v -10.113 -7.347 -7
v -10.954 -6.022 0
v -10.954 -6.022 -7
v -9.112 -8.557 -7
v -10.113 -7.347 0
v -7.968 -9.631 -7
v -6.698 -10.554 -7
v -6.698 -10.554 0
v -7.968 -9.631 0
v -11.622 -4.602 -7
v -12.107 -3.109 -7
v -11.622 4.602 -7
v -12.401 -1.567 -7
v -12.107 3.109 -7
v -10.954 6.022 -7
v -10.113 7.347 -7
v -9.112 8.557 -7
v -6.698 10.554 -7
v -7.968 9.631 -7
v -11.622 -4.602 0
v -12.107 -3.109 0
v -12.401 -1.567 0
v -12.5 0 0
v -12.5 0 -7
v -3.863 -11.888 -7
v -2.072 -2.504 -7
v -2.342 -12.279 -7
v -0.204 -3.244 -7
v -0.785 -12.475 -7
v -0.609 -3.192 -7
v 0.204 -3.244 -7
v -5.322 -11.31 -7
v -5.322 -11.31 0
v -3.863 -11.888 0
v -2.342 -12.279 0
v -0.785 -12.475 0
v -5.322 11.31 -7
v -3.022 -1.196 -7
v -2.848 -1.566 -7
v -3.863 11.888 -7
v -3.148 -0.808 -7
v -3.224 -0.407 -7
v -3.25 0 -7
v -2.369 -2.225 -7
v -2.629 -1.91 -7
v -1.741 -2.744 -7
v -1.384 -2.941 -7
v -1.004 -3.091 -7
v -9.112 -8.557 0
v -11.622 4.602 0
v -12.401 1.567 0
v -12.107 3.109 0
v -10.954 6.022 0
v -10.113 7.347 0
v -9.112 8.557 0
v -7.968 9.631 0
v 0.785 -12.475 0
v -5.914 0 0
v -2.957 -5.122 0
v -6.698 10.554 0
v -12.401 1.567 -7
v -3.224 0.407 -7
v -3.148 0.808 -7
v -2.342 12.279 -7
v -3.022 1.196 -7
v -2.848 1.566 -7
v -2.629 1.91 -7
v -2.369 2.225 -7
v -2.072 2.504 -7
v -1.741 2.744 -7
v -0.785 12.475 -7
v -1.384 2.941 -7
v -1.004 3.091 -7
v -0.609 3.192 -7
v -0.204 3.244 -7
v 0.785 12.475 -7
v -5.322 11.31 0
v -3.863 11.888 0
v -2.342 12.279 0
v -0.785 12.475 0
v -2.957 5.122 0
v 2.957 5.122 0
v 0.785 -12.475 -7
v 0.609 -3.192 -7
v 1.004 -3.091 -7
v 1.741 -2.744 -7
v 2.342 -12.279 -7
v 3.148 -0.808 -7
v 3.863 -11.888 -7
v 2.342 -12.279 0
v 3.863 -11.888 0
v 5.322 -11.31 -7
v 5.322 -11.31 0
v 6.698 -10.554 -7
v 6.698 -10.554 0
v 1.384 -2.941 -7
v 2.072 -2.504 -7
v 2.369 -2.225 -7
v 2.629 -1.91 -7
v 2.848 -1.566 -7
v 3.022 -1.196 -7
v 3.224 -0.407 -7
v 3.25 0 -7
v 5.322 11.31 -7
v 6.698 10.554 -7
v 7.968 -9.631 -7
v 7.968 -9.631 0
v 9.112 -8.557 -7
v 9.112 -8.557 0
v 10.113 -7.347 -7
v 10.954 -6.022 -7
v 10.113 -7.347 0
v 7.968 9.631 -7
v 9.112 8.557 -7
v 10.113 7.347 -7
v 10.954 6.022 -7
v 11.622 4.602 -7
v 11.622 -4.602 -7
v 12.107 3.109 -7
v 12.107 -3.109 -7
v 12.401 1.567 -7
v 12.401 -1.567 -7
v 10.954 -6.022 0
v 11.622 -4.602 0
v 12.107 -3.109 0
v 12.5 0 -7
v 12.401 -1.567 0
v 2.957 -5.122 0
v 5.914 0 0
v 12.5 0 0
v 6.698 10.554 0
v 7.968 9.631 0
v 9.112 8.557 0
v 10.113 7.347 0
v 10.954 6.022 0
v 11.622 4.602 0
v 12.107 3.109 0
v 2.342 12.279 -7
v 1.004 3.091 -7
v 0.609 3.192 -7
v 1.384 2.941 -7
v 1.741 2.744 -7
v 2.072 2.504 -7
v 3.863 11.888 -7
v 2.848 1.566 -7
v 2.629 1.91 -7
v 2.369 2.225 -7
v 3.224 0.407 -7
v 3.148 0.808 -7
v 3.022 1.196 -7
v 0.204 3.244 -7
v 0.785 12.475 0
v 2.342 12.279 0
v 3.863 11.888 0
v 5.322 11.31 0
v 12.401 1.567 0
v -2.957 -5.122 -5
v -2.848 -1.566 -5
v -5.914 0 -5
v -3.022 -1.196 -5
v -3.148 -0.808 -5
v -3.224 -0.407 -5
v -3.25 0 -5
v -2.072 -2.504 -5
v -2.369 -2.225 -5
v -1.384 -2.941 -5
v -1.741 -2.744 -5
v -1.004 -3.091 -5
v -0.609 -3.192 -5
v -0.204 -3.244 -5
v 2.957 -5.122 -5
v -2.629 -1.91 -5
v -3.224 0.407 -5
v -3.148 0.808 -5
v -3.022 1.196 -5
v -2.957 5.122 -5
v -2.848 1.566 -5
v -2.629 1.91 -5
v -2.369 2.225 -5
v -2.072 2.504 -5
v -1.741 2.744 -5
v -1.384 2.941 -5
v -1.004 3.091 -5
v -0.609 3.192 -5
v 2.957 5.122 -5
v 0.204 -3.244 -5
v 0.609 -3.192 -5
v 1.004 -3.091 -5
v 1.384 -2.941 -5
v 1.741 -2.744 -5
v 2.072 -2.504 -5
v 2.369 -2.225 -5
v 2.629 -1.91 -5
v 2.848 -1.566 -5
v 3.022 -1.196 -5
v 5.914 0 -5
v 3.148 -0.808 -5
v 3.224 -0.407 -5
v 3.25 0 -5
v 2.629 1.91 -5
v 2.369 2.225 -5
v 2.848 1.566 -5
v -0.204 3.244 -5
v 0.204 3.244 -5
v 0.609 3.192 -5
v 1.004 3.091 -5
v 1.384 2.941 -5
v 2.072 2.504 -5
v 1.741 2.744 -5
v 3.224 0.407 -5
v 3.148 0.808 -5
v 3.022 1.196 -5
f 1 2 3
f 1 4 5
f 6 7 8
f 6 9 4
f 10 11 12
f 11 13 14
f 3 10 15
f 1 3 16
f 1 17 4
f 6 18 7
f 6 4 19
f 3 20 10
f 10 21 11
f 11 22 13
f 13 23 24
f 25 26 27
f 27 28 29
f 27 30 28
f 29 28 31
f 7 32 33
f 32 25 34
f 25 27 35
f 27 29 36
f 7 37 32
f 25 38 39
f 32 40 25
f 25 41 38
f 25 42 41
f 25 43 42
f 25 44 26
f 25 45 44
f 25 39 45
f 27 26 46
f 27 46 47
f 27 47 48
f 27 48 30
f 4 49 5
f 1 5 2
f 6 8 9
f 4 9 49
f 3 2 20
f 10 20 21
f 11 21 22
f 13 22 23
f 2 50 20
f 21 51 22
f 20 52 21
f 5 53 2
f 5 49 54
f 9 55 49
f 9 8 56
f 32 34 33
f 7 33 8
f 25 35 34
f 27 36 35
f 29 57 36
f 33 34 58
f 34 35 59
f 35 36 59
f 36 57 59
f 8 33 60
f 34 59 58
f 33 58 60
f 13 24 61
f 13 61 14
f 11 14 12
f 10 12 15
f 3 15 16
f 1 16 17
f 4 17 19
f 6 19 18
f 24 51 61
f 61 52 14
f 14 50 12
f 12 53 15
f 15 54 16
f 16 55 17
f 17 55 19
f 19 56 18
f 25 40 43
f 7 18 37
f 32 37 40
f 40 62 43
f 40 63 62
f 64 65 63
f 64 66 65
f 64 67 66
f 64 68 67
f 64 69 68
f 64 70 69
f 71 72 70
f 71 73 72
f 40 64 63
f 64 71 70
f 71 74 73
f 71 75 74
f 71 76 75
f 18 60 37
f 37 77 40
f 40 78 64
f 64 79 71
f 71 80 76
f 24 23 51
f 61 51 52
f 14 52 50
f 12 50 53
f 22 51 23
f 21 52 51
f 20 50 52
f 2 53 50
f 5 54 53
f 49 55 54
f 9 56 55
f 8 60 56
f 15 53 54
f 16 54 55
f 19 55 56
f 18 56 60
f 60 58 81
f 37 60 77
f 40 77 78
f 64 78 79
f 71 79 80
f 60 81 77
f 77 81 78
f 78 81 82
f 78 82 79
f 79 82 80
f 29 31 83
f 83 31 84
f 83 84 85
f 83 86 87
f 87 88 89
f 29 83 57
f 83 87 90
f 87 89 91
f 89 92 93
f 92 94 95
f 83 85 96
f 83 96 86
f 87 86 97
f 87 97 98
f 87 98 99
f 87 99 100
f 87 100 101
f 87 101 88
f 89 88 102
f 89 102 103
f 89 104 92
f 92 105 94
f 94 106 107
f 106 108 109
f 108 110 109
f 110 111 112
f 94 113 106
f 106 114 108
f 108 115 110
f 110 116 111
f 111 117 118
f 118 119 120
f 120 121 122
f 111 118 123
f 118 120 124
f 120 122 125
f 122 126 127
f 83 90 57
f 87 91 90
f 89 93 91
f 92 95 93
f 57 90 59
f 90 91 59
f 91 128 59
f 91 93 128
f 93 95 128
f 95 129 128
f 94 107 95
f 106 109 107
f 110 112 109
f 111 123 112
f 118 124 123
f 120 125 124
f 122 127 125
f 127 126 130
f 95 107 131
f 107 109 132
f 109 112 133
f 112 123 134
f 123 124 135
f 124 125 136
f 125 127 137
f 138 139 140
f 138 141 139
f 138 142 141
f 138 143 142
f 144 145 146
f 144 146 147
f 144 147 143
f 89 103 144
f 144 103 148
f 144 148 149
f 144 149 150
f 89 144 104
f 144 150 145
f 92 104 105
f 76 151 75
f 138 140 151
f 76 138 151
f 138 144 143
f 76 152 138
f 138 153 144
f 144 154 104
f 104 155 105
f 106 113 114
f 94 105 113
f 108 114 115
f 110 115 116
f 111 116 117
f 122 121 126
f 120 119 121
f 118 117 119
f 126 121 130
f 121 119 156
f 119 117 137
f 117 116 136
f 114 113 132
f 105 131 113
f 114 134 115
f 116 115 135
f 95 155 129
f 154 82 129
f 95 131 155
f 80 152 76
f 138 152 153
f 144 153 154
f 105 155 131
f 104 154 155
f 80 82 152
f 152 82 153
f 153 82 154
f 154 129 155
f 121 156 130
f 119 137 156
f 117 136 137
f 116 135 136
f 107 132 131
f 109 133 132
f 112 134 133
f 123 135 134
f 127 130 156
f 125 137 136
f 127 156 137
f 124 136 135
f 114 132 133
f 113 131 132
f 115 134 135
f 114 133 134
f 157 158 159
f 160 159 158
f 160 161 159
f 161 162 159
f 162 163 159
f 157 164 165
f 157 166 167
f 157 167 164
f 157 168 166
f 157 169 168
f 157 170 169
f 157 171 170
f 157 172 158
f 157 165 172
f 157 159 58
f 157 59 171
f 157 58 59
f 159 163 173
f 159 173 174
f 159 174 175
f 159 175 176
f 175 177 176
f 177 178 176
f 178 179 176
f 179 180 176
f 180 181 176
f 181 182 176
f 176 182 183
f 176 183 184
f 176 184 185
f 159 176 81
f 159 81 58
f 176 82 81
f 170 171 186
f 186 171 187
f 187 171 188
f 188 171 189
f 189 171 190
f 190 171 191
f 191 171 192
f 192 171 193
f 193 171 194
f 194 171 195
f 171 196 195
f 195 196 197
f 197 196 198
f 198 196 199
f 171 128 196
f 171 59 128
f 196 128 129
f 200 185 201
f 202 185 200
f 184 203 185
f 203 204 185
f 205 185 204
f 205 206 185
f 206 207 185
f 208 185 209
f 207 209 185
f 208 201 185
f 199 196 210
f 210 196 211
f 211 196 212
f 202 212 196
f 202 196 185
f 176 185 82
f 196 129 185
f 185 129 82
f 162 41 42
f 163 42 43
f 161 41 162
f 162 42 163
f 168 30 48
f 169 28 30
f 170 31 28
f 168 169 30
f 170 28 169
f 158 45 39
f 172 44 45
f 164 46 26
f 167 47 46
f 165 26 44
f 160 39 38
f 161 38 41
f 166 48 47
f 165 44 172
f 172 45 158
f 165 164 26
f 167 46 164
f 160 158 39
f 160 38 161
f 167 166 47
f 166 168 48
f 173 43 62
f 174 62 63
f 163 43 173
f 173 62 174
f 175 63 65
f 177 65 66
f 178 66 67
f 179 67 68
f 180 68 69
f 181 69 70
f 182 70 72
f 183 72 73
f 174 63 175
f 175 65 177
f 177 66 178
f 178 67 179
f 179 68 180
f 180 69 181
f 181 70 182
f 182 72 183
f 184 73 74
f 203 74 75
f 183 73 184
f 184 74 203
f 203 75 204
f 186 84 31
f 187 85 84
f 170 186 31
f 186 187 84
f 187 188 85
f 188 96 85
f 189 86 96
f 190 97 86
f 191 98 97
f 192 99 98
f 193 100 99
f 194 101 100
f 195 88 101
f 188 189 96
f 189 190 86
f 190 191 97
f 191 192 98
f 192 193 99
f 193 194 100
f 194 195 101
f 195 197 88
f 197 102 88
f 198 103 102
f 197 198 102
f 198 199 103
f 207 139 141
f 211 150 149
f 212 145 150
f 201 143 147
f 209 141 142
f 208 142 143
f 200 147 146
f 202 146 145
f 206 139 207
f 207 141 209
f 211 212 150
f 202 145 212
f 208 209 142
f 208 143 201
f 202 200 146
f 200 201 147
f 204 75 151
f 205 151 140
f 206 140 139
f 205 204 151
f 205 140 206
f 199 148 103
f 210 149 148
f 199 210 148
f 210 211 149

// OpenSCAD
$fn = 50;

difference() {
	union() {
		translate(v = [0, 0, -7.0]) {
			cylinder(h = 7.0, r = 12.5);
		}
		#translate(v = [0, 0, -8.5]) {
			cylinder(h = 8.5, r = 2.875);
		}
	}
	union() {
		translate(v = [0, 0, 0]) {
			rotate(a = [0, 0, 0]) {
				difference() {
					union() {
						translate(v = [0, 0, -5]) {
							linear_extrude(height = 5) {
								polygon(points = [[5.914249999999999, 0.0], [2.957125, 5.1218907443321156], [-2.9571249999999982, 5.1218907443321156], [-5.914249999999999, 7.242867331857232e-16], [-2.9571250000000022, -5.121890744332115], [2.9571249999999956, -5.121890744332118]]);
							}
						}
					}
					union();
				}
			}
		}
		#translate(v = [0, 0, -100.0]) {
			cylinder(h = 200, r = 3.25);
		}
	}
}
